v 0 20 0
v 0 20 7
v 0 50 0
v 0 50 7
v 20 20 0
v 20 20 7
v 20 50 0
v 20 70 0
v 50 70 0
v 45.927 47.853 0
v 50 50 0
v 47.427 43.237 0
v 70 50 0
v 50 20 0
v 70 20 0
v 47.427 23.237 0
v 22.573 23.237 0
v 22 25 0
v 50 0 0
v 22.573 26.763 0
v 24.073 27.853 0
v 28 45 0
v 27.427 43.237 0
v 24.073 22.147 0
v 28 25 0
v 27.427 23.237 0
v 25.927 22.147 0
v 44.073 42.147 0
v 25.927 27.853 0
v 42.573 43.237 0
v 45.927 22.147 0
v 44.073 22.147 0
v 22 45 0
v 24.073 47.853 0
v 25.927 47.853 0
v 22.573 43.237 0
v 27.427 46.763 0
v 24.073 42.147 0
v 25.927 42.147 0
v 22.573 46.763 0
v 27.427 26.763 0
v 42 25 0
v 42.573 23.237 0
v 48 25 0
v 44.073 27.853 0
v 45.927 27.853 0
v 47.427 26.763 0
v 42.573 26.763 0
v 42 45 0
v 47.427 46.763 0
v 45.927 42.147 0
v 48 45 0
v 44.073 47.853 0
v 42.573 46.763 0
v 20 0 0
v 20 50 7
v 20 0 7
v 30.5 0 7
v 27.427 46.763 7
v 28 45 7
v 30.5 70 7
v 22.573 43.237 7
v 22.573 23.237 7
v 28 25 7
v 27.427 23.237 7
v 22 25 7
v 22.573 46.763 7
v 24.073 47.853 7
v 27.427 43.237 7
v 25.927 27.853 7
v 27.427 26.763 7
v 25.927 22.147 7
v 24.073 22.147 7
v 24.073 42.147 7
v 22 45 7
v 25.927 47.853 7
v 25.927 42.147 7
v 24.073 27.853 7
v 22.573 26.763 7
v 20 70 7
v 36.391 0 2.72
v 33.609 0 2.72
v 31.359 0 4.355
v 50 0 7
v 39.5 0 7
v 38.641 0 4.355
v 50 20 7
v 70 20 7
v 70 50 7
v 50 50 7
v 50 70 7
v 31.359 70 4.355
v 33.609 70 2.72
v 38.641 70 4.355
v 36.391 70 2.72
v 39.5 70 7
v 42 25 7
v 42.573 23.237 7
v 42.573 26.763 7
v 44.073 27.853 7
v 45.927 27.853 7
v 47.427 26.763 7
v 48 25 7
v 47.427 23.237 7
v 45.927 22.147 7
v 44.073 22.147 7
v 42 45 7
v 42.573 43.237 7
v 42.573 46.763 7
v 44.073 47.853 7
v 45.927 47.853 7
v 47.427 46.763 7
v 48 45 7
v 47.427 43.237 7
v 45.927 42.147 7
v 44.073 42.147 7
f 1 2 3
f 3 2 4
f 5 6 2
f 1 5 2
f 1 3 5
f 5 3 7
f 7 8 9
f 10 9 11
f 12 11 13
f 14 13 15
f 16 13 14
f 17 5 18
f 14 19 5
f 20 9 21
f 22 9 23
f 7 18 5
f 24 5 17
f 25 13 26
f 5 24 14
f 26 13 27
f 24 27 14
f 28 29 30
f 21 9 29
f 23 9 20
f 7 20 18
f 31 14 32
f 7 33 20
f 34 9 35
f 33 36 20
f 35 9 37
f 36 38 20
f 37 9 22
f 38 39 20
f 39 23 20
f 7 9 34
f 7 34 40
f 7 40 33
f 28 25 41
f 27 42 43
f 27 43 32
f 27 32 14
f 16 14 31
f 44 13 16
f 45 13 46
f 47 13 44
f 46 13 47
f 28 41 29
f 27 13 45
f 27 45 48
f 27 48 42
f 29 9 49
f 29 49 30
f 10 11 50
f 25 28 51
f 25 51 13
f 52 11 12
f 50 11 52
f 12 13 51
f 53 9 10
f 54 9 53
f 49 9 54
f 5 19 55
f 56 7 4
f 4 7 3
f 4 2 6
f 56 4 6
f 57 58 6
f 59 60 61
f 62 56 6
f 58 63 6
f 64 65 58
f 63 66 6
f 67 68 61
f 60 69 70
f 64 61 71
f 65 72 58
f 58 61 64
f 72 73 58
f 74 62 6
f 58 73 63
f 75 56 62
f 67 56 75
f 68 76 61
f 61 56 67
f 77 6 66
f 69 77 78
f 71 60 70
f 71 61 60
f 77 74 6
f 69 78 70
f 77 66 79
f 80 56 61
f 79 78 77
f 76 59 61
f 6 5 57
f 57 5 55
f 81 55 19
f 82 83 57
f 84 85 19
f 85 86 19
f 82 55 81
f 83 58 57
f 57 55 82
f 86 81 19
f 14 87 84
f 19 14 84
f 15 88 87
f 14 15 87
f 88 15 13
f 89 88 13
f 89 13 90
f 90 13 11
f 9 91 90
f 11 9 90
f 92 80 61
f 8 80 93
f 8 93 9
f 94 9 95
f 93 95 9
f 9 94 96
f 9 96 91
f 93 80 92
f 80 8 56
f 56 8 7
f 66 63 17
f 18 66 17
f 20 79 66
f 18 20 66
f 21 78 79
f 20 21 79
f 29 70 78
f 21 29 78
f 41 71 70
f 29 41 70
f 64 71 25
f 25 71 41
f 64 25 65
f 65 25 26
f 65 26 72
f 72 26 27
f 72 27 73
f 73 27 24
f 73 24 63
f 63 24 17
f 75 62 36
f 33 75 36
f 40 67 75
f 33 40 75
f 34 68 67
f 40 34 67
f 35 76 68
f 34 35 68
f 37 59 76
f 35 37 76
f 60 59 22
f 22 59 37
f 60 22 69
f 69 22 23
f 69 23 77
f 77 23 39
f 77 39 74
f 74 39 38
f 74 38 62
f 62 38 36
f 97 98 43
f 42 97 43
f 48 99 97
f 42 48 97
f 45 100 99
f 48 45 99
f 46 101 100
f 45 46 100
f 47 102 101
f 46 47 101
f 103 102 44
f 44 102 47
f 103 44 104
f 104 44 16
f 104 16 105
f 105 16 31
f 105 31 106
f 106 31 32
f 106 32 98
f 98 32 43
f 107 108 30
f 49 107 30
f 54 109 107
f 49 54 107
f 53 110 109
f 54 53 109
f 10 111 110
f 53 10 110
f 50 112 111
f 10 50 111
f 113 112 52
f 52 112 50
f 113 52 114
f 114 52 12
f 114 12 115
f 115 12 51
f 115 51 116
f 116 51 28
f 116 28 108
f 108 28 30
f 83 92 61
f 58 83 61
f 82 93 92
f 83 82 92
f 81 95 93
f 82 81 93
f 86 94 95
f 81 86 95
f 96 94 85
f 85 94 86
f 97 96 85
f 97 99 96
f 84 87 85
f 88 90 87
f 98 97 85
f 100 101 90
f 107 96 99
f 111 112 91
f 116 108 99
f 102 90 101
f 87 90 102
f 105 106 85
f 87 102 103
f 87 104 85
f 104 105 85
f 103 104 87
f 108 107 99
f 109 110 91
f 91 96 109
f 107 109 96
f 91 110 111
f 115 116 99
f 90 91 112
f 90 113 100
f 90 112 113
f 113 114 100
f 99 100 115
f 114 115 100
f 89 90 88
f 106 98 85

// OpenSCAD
// file: hardware.scad
axle_r = 4.5;
axle_separation = 30;

module axle(h) {
	rotate(v=[-1,0,0], a=90) cylinder(r=axle_r, h=h, $fn=10);
}

module axlepair(h=100) {
	union() {
		axle(h);
		translate(v=[axle_separation, 0, 0]) axle(h);
	}
}

module m2(h=16) {
	union() {
		cylinder(r=2, h=2);
		cylinder(r=1.5, h=h);
	}
}

module m3(h=16) {
	union() {
		cylinder(r=3.25, h=3);
		cylinder(r=2, h=h);
	}
}

module m5(h=16) {
	union() {
		cylinder(r=4.5, h=5);
		cylinder(r=3, h=h);
	}
}
// main file
include <hardware.scad>

brock_b_height = 7;

module brock_b() {
	h = brock_b_height;

	corner = 20;
	width = 70;
	screw = 5;
	z_off = 6.1;
	m5_z_off = -6;

	difference() {
		cube([width, width, h]);

		for (v = [[0,0,0],[width-corner,0,0],
				[0,width-corner,0],[width-corner,width-corner,0]]) 
			translate(v=v) cube([corner, corner, h]);

		for (x=[corner+screw, width-(corner+screw)])
			for (y=[corner+screw, width-(corner+screw)])
				translate(v=[x,y,m5_z_off]) m5();

		translate(v=[width/2,-0.5,h]) axle(h=width+1);
	}
}

brock_b();
